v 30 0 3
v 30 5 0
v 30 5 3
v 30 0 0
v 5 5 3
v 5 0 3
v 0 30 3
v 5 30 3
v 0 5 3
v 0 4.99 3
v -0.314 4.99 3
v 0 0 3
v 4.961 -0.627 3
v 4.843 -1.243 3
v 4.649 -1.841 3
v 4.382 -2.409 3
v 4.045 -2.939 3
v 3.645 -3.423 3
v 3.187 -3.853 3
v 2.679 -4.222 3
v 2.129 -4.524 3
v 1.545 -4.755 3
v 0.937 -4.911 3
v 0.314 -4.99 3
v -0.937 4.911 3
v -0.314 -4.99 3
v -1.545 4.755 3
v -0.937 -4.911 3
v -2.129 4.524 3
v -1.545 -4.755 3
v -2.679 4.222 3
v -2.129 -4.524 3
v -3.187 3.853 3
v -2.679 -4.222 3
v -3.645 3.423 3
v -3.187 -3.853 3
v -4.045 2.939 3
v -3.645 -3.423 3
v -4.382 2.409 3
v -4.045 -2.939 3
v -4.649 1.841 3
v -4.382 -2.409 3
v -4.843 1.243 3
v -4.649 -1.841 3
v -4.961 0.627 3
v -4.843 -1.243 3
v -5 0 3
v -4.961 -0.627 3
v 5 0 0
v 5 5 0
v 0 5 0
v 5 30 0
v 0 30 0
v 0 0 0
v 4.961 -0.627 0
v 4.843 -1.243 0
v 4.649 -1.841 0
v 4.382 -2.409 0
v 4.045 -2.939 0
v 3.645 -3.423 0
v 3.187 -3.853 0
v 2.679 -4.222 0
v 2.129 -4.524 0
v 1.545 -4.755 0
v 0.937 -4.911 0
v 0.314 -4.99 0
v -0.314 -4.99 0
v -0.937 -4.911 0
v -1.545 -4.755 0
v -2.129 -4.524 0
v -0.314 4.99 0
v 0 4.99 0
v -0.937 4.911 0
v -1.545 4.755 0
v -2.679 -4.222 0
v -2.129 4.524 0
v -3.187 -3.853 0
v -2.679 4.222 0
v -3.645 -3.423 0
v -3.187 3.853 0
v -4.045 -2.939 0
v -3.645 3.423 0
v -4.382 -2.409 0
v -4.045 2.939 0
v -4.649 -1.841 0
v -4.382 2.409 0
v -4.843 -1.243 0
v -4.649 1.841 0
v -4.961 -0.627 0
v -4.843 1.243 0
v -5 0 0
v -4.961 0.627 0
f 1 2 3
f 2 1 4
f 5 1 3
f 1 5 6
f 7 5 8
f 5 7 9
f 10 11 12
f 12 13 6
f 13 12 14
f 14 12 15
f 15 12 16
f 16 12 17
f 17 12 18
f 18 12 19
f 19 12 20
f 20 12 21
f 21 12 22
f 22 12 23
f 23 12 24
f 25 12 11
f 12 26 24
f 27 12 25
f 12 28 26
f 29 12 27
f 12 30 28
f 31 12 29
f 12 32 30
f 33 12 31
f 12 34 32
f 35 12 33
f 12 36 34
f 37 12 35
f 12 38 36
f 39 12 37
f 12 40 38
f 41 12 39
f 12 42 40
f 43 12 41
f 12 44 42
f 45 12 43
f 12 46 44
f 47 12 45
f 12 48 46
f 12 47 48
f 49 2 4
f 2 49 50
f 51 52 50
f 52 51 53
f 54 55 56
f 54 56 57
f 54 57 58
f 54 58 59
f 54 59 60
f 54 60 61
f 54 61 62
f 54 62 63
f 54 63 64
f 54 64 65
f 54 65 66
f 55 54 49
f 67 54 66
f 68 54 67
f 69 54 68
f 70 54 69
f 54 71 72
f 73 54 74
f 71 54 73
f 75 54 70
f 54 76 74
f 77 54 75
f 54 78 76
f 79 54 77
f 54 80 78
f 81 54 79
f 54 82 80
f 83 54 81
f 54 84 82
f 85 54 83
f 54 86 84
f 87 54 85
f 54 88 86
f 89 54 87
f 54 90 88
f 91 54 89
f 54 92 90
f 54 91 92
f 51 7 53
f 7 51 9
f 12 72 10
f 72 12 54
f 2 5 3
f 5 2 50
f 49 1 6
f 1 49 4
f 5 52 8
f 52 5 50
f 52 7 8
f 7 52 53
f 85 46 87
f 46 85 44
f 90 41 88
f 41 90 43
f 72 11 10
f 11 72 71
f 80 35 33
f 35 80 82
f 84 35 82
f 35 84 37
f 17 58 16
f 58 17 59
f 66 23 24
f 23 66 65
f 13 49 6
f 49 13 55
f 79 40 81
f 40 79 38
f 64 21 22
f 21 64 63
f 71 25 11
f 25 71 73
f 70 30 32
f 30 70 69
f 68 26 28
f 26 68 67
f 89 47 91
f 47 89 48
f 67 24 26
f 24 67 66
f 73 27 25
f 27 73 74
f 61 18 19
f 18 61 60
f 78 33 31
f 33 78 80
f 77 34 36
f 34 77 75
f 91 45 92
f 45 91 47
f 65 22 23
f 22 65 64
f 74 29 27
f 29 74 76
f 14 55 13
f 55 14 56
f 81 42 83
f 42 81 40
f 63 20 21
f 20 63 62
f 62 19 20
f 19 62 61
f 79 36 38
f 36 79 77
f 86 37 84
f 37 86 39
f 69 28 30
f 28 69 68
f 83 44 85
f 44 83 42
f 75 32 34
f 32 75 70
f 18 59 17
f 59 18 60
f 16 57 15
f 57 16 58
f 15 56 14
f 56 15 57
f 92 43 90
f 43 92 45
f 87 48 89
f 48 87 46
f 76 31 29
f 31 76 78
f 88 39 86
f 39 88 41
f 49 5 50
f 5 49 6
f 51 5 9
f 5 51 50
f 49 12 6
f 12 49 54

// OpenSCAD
// Parameters
arm_length = 30;
arm_width = 5;
thickness = 3;
corner_radius = 5;

// Module to create a single L-bracket
module L_bracket() {
    difference() {
        union() {
            // Horizontal arm
            cube([arm_length, arm_width, thickness]);

            // Vertical arm
            translate([0, 0, 0])
                cube([arm_width, arm_length, thickness]);

            // Rounded outer corner
            translate([0, 0, 0])
                rotate([0, 0, 0])
                    translate([arm_width - corner_radius, arm_width - corner_radius, 0])
                        cylinder(h = thickness, r = corner_radius, $fn = 50);
        }

        // Remove the inner corner to keep it sharp
        translate([0, 0, -1])
            cube([arm_width, arm_width, thickness + 2]);
    }
}

// Display the L-bracket
L_bracket();
